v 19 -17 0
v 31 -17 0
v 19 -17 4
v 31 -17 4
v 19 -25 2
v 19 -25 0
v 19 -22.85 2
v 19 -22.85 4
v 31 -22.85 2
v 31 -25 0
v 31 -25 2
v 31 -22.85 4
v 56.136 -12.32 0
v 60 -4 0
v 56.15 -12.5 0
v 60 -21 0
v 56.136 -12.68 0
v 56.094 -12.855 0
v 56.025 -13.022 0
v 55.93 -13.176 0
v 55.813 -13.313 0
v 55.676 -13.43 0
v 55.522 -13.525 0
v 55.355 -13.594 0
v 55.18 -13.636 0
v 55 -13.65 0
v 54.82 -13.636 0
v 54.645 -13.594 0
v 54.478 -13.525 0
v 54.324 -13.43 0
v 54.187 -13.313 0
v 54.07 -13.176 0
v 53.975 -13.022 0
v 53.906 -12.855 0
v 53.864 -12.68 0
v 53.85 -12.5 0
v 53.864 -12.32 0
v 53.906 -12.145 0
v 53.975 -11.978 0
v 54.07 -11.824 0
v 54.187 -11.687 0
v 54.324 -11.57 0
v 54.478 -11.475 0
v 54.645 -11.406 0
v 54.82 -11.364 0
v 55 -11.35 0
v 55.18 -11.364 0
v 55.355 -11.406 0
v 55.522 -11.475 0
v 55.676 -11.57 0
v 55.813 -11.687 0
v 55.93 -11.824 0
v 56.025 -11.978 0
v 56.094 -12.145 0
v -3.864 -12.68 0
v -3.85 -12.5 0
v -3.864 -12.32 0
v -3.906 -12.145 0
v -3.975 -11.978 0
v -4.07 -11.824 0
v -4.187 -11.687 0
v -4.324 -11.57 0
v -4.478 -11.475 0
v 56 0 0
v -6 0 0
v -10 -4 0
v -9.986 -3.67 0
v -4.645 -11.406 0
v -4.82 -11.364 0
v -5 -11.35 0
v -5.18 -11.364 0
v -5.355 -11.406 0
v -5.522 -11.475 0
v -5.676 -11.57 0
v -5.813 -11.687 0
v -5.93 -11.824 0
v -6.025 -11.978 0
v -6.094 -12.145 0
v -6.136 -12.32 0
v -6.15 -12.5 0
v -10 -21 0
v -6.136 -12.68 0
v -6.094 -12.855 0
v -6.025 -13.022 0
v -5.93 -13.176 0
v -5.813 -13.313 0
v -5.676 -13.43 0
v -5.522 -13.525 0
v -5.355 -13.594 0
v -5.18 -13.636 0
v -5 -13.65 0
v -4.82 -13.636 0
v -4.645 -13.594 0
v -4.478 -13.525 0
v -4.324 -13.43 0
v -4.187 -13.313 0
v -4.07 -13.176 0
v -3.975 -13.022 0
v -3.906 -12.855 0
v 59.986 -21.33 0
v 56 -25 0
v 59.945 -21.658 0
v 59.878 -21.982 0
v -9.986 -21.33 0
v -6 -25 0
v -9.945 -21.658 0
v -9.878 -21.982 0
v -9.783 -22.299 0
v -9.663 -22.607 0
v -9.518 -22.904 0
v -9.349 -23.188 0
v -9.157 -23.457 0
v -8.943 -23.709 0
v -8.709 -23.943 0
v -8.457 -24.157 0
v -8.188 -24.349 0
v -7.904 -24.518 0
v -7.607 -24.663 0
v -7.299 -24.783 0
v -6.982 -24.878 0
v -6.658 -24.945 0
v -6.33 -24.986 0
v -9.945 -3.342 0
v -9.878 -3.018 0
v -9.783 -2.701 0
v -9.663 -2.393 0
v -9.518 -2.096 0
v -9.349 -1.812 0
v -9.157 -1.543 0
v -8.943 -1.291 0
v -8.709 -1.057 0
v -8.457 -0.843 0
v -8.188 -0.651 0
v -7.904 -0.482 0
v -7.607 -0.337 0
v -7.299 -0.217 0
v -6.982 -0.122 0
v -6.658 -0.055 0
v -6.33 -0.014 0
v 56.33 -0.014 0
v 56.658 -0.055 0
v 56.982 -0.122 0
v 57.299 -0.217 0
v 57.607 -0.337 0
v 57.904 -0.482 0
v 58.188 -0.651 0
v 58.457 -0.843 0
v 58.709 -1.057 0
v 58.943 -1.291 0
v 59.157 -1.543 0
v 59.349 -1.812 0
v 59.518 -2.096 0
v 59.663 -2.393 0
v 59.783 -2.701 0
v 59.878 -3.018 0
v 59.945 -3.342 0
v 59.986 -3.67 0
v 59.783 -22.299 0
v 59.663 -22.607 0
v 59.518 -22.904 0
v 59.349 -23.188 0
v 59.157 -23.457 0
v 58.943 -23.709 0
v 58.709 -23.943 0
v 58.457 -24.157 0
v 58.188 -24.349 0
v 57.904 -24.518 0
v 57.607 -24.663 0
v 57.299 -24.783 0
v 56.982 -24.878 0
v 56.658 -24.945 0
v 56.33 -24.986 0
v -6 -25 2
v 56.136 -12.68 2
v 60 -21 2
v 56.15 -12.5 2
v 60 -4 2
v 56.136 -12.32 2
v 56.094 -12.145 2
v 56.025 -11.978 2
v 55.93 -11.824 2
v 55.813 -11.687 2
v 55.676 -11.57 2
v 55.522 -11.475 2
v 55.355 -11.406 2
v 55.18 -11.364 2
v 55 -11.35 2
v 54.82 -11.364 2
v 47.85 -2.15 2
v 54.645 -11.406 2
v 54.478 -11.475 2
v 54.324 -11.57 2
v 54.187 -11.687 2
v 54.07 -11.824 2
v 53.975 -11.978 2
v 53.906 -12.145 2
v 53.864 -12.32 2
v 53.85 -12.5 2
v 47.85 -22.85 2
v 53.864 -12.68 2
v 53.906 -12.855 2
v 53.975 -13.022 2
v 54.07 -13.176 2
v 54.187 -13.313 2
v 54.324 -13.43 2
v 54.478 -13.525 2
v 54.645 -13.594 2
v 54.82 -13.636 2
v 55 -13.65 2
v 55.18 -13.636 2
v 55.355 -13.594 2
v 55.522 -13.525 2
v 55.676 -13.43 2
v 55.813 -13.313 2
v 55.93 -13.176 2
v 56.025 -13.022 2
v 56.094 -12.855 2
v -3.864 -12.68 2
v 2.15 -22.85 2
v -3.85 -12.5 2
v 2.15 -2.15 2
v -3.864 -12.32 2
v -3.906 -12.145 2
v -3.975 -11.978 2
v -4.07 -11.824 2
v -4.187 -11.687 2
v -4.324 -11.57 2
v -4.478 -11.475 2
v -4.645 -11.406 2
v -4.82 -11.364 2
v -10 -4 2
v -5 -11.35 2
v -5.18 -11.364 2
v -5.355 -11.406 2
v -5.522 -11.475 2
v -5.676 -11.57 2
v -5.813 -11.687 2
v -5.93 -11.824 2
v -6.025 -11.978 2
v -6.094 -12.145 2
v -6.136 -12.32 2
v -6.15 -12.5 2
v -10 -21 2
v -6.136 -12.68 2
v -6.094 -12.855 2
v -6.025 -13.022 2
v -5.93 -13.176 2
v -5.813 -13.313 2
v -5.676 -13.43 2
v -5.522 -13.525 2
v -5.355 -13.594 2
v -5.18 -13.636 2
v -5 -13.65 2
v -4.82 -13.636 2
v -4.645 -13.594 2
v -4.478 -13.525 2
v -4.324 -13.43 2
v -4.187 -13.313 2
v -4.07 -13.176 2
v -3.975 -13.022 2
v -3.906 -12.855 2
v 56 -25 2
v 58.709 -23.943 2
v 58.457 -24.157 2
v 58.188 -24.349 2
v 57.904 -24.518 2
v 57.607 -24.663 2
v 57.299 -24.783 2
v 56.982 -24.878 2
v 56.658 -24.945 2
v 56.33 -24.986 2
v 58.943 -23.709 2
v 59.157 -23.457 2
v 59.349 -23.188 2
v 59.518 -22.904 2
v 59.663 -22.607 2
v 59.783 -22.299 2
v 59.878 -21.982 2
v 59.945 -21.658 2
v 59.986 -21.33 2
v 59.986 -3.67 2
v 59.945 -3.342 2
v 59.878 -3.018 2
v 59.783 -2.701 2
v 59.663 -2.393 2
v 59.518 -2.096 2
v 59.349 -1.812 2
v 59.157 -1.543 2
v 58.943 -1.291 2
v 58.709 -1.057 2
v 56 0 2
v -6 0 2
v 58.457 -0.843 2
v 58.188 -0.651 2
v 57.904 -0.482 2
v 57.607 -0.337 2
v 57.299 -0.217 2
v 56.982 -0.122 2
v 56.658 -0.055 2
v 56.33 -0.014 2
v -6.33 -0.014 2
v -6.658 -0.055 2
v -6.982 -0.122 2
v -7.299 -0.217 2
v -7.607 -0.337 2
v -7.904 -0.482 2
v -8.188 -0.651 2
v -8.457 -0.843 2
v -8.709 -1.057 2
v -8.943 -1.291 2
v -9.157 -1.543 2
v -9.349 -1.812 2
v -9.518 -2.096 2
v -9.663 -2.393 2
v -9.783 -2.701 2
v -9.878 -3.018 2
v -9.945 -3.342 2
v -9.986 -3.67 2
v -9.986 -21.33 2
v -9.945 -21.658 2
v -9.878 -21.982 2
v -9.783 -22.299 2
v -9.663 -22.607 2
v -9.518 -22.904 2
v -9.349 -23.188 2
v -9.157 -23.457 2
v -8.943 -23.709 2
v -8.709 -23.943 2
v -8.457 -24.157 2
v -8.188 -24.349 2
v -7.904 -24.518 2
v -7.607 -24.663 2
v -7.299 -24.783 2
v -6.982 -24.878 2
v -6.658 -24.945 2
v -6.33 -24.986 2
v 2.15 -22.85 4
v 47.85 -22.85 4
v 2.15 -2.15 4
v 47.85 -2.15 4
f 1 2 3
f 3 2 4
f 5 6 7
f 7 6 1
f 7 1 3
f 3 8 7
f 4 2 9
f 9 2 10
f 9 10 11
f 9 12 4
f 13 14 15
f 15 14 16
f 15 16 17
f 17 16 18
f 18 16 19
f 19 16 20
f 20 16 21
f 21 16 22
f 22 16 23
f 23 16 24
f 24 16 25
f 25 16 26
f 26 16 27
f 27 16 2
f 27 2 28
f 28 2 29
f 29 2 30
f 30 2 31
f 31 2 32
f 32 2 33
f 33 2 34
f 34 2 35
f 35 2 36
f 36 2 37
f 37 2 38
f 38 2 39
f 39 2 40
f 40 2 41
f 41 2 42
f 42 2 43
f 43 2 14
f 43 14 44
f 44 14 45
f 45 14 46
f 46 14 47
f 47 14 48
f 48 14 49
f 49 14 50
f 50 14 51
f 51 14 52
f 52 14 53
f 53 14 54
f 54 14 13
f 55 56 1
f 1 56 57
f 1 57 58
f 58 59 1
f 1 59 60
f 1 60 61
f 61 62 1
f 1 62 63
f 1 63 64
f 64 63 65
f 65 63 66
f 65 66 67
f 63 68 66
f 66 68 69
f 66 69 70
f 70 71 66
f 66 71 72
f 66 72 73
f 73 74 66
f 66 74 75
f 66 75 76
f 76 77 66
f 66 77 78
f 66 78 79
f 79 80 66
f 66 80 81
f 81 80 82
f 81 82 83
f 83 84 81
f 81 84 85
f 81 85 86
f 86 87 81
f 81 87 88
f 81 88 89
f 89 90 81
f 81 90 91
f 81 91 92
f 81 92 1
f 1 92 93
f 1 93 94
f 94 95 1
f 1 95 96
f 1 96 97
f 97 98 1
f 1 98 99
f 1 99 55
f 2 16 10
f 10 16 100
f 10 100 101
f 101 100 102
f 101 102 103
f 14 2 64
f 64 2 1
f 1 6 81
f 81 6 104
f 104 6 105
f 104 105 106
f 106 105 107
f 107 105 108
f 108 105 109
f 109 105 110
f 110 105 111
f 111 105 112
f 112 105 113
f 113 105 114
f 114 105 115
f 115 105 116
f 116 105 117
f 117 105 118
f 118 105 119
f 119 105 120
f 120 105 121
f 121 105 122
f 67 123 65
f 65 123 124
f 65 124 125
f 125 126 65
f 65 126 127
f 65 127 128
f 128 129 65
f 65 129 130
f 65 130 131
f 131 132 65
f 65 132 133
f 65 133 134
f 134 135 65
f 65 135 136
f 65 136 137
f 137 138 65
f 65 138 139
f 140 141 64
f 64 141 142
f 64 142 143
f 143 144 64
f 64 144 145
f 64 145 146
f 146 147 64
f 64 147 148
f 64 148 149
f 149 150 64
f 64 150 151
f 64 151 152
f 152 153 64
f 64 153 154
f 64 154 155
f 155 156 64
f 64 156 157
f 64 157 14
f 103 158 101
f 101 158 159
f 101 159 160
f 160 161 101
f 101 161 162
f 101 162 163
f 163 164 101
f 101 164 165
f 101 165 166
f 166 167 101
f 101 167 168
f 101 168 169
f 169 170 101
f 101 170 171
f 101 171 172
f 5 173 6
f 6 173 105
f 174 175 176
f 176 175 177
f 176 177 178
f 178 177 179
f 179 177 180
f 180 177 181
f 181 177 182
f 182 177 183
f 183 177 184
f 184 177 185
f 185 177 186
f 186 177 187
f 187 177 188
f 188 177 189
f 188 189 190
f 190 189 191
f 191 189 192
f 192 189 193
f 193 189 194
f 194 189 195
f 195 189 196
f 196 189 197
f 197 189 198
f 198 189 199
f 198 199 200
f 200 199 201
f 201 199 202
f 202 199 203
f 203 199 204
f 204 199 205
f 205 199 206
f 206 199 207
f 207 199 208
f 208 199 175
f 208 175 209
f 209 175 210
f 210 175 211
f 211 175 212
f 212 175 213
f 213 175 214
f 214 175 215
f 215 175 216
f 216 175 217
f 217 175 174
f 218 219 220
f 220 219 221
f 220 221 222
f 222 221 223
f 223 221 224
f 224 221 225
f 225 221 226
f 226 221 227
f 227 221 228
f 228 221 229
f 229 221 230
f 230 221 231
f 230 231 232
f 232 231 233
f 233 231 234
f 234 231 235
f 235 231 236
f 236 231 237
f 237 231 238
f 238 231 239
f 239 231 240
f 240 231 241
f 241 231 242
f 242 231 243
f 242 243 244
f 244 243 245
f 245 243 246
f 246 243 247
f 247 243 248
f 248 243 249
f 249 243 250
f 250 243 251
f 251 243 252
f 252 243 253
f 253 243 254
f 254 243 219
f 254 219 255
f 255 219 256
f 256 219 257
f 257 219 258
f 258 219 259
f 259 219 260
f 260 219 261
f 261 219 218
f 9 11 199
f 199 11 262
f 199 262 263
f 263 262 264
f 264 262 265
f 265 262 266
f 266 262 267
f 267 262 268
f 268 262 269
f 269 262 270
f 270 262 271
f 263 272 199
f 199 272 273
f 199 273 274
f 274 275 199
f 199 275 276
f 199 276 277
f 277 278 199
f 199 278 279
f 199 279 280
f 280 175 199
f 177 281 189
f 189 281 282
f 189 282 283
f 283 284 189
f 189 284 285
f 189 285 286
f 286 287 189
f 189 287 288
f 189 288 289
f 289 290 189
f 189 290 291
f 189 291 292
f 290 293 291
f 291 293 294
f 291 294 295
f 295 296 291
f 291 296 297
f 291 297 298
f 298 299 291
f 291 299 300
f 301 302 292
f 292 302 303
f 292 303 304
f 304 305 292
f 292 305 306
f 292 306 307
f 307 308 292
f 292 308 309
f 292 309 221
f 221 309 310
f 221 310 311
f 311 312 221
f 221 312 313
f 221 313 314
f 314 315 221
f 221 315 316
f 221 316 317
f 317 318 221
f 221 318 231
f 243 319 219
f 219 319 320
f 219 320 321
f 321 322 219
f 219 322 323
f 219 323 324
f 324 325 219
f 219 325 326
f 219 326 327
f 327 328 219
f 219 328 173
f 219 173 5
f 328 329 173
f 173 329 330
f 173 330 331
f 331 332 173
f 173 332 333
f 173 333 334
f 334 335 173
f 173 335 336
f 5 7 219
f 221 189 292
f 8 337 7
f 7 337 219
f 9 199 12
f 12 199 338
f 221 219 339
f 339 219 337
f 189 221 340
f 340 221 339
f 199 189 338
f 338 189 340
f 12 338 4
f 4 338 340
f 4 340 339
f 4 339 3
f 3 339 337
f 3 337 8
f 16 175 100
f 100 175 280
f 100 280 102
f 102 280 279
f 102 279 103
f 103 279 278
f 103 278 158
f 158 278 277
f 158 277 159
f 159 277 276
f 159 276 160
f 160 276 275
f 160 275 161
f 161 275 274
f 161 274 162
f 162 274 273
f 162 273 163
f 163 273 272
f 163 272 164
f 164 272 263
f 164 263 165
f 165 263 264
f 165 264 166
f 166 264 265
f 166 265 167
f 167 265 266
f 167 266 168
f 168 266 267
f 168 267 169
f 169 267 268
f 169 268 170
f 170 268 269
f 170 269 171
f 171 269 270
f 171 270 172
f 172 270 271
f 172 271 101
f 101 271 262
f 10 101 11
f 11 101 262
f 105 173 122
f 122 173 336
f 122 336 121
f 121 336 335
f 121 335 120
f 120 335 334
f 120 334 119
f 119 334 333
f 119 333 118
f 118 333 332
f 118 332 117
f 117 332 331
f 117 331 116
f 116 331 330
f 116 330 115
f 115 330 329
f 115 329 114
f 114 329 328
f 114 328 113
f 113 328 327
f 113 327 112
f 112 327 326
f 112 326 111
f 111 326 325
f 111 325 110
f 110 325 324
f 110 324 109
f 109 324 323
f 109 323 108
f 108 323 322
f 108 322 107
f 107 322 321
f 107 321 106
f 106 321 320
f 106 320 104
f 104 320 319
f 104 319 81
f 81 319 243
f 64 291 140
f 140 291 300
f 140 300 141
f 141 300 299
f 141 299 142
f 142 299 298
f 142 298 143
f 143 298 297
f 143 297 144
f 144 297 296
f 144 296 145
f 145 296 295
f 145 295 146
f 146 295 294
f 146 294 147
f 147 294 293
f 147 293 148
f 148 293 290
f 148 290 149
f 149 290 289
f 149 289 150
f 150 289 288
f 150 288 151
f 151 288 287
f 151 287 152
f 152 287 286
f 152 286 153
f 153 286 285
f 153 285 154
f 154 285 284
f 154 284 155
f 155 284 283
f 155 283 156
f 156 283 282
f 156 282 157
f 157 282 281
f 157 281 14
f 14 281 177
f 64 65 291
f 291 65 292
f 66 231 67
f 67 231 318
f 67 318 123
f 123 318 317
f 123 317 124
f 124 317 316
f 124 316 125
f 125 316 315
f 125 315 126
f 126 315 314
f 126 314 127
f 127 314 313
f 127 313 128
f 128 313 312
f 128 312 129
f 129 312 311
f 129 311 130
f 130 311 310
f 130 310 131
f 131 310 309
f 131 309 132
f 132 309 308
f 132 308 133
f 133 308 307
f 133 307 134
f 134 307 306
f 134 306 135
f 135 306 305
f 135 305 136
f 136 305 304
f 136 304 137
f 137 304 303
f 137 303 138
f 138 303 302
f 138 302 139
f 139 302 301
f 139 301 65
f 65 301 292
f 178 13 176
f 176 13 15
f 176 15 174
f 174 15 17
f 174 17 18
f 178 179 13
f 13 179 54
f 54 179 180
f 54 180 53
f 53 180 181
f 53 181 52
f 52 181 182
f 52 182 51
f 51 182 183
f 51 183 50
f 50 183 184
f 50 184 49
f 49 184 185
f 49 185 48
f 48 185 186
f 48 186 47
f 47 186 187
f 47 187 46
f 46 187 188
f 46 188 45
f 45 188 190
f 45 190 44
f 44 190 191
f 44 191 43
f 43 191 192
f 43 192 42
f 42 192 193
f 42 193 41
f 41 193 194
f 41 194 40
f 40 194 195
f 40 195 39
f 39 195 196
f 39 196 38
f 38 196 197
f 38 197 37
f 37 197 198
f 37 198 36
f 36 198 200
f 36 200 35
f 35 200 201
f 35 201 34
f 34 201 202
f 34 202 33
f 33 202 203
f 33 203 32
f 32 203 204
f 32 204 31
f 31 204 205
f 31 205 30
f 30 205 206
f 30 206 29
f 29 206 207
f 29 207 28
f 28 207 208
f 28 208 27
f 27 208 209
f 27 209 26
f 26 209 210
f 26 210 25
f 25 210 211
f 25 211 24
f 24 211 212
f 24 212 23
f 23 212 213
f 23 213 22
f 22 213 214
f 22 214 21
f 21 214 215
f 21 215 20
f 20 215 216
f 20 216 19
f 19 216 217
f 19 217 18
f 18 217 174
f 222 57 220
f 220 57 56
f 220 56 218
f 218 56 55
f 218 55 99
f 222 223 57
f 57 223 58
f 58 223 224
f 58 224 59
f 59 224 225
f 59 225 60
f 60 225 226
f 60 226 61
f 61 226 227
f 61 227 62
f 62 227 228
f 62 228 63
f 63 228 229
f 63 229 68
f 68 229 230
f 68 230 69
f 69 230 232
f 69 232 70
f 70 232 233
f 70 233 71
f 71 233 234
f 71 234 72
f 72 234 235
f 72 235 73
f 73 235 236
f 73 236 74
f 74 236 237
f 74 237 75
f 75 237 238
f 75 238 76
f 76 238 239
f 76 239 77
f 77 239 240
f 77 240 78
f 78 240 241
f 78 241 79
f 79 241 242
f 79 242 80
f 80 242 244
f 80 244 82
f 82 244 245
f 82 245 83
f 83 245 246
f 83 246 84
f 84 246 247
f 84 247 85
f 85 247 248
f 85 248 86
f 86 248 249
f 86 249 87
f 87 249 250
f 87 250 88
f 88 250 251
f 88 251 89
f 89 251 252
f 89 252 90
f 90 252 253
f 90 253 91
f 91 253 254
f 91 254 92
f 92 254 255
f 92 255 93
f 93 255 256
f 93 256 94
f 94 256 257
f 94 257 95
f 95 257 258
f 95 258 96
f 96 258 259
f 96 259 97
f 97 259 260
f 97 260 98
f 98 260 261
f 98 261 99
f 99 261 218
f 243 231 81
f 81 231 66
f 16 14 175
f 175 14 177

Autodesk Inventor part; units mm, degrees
ref_plane "YZ Plane" through (0, 0, 0) normal (1, 0, 0) x (0, 1, 0)
ref_plane "XZ Plane" through (0, 0, 0) normal (0, 1, 0) x (-1, 0, 0)
sketch "Sketch1" plane through (0, 0, 0) normal (0, 0, 1) x (1, 0, 0)
  line L0 (0, 0) -> (50, 0)
  line L1 (50, 0) -> (50, -25)
  line L2 (50, -25) -> (0, -25)
  line L3 (0, -25) -> (0, 0)
  line L4 (50, 0) -> (60, 0)
  line L5 (60, -25) -> (50, -25)
  line L6 (0, -25) -> (-10, -25)
  line L7 (-10, 0) -> (0, 0)
  circle A0 centre (55, -12.5) radius 1.15
  circle A1 centre (-5, -12.5) radius 1.15
  line L8 (-10, 0) -> (-10, -25)
  line L9 (60, 0) -> (60, -25)
  point P0 (60, -12.5)
  point P1 (-10, -12.5)
  dimension "d0" = 50
  dimension "d1" = 25
  dimension "d19" = 10
  dimension "d20" = 10
  dimension "d21" = 2.3
  dimension "d22" = 2.3
  dimension "d37" = 12.5
  dimension "d38" = 12.5
  dimension "d39" = 12.5
  dimension "d40" = 5
  dimension "d41" = 5
  dimension "d42" = 12.5
  dimension "d43" = 12.5
extrude "Extrusion1" add sketch "Sketch1" along normal blind 2
sketch "Sketch4" plane through (0, 0, 2) normal (0, 0, 1) x (1, 0, 0)
  line L0 (2.15, -22.85) -> (47.85, -22.85)
  line L1 (47.85, -22.85) -> (47.85, -2.15)
  line L2 (47.85, -2.15) -> (2.15, -2.15)
  line L3 (2.15, -2.15) -> (2.15, -22.85)
  line L4 (60, -25) -> (60, 0) projected
  point P0 (0, 0)
  point P1 (2.15, -12.5)
  point P2 (50, -25)
  dimension "d25" = 20.7
  dimension "d26" = 2.15
  dimension "d27" = 45.7
  dimension "d44" = 12.15
ref_plane "Work Plane1" through (0, 0, 4) normal (0, 0, 1) x (1, 0, 0)
sketch "Sketch5" plane through (0, 0, 4) normal (0, 0, 1) x (1, 0, 0)
  line L0 (31, -25) -> (19, -25)
  line L1 (19, -25) -> (19, -17)
  line L2 (19, -17) -> (31, -17)
  line L3 (31, -17) -> (31, -25)
  line L4 (-10, -25) -> (60, -25) projected
  line L5 (-10, 0) -> (-10, -25) projected
  point P0 (0, 0)
  dimension "d32" = 12
  dimension "d33" = 8
  dimension "d50" = 29
fillet "Fillet1" radius 4 4 edges at (-10, 0, 1) (60, 0, 1) (-10, -25, 1) (60, -25, 1)
extrude "Extrusion6" add sketch "Sketch4" along normal blind 2
extrude "Extrusion7" cut sketch "Sketch5" against normal through all
properties part number "UltrasonicSensorMountTest_backplate"
